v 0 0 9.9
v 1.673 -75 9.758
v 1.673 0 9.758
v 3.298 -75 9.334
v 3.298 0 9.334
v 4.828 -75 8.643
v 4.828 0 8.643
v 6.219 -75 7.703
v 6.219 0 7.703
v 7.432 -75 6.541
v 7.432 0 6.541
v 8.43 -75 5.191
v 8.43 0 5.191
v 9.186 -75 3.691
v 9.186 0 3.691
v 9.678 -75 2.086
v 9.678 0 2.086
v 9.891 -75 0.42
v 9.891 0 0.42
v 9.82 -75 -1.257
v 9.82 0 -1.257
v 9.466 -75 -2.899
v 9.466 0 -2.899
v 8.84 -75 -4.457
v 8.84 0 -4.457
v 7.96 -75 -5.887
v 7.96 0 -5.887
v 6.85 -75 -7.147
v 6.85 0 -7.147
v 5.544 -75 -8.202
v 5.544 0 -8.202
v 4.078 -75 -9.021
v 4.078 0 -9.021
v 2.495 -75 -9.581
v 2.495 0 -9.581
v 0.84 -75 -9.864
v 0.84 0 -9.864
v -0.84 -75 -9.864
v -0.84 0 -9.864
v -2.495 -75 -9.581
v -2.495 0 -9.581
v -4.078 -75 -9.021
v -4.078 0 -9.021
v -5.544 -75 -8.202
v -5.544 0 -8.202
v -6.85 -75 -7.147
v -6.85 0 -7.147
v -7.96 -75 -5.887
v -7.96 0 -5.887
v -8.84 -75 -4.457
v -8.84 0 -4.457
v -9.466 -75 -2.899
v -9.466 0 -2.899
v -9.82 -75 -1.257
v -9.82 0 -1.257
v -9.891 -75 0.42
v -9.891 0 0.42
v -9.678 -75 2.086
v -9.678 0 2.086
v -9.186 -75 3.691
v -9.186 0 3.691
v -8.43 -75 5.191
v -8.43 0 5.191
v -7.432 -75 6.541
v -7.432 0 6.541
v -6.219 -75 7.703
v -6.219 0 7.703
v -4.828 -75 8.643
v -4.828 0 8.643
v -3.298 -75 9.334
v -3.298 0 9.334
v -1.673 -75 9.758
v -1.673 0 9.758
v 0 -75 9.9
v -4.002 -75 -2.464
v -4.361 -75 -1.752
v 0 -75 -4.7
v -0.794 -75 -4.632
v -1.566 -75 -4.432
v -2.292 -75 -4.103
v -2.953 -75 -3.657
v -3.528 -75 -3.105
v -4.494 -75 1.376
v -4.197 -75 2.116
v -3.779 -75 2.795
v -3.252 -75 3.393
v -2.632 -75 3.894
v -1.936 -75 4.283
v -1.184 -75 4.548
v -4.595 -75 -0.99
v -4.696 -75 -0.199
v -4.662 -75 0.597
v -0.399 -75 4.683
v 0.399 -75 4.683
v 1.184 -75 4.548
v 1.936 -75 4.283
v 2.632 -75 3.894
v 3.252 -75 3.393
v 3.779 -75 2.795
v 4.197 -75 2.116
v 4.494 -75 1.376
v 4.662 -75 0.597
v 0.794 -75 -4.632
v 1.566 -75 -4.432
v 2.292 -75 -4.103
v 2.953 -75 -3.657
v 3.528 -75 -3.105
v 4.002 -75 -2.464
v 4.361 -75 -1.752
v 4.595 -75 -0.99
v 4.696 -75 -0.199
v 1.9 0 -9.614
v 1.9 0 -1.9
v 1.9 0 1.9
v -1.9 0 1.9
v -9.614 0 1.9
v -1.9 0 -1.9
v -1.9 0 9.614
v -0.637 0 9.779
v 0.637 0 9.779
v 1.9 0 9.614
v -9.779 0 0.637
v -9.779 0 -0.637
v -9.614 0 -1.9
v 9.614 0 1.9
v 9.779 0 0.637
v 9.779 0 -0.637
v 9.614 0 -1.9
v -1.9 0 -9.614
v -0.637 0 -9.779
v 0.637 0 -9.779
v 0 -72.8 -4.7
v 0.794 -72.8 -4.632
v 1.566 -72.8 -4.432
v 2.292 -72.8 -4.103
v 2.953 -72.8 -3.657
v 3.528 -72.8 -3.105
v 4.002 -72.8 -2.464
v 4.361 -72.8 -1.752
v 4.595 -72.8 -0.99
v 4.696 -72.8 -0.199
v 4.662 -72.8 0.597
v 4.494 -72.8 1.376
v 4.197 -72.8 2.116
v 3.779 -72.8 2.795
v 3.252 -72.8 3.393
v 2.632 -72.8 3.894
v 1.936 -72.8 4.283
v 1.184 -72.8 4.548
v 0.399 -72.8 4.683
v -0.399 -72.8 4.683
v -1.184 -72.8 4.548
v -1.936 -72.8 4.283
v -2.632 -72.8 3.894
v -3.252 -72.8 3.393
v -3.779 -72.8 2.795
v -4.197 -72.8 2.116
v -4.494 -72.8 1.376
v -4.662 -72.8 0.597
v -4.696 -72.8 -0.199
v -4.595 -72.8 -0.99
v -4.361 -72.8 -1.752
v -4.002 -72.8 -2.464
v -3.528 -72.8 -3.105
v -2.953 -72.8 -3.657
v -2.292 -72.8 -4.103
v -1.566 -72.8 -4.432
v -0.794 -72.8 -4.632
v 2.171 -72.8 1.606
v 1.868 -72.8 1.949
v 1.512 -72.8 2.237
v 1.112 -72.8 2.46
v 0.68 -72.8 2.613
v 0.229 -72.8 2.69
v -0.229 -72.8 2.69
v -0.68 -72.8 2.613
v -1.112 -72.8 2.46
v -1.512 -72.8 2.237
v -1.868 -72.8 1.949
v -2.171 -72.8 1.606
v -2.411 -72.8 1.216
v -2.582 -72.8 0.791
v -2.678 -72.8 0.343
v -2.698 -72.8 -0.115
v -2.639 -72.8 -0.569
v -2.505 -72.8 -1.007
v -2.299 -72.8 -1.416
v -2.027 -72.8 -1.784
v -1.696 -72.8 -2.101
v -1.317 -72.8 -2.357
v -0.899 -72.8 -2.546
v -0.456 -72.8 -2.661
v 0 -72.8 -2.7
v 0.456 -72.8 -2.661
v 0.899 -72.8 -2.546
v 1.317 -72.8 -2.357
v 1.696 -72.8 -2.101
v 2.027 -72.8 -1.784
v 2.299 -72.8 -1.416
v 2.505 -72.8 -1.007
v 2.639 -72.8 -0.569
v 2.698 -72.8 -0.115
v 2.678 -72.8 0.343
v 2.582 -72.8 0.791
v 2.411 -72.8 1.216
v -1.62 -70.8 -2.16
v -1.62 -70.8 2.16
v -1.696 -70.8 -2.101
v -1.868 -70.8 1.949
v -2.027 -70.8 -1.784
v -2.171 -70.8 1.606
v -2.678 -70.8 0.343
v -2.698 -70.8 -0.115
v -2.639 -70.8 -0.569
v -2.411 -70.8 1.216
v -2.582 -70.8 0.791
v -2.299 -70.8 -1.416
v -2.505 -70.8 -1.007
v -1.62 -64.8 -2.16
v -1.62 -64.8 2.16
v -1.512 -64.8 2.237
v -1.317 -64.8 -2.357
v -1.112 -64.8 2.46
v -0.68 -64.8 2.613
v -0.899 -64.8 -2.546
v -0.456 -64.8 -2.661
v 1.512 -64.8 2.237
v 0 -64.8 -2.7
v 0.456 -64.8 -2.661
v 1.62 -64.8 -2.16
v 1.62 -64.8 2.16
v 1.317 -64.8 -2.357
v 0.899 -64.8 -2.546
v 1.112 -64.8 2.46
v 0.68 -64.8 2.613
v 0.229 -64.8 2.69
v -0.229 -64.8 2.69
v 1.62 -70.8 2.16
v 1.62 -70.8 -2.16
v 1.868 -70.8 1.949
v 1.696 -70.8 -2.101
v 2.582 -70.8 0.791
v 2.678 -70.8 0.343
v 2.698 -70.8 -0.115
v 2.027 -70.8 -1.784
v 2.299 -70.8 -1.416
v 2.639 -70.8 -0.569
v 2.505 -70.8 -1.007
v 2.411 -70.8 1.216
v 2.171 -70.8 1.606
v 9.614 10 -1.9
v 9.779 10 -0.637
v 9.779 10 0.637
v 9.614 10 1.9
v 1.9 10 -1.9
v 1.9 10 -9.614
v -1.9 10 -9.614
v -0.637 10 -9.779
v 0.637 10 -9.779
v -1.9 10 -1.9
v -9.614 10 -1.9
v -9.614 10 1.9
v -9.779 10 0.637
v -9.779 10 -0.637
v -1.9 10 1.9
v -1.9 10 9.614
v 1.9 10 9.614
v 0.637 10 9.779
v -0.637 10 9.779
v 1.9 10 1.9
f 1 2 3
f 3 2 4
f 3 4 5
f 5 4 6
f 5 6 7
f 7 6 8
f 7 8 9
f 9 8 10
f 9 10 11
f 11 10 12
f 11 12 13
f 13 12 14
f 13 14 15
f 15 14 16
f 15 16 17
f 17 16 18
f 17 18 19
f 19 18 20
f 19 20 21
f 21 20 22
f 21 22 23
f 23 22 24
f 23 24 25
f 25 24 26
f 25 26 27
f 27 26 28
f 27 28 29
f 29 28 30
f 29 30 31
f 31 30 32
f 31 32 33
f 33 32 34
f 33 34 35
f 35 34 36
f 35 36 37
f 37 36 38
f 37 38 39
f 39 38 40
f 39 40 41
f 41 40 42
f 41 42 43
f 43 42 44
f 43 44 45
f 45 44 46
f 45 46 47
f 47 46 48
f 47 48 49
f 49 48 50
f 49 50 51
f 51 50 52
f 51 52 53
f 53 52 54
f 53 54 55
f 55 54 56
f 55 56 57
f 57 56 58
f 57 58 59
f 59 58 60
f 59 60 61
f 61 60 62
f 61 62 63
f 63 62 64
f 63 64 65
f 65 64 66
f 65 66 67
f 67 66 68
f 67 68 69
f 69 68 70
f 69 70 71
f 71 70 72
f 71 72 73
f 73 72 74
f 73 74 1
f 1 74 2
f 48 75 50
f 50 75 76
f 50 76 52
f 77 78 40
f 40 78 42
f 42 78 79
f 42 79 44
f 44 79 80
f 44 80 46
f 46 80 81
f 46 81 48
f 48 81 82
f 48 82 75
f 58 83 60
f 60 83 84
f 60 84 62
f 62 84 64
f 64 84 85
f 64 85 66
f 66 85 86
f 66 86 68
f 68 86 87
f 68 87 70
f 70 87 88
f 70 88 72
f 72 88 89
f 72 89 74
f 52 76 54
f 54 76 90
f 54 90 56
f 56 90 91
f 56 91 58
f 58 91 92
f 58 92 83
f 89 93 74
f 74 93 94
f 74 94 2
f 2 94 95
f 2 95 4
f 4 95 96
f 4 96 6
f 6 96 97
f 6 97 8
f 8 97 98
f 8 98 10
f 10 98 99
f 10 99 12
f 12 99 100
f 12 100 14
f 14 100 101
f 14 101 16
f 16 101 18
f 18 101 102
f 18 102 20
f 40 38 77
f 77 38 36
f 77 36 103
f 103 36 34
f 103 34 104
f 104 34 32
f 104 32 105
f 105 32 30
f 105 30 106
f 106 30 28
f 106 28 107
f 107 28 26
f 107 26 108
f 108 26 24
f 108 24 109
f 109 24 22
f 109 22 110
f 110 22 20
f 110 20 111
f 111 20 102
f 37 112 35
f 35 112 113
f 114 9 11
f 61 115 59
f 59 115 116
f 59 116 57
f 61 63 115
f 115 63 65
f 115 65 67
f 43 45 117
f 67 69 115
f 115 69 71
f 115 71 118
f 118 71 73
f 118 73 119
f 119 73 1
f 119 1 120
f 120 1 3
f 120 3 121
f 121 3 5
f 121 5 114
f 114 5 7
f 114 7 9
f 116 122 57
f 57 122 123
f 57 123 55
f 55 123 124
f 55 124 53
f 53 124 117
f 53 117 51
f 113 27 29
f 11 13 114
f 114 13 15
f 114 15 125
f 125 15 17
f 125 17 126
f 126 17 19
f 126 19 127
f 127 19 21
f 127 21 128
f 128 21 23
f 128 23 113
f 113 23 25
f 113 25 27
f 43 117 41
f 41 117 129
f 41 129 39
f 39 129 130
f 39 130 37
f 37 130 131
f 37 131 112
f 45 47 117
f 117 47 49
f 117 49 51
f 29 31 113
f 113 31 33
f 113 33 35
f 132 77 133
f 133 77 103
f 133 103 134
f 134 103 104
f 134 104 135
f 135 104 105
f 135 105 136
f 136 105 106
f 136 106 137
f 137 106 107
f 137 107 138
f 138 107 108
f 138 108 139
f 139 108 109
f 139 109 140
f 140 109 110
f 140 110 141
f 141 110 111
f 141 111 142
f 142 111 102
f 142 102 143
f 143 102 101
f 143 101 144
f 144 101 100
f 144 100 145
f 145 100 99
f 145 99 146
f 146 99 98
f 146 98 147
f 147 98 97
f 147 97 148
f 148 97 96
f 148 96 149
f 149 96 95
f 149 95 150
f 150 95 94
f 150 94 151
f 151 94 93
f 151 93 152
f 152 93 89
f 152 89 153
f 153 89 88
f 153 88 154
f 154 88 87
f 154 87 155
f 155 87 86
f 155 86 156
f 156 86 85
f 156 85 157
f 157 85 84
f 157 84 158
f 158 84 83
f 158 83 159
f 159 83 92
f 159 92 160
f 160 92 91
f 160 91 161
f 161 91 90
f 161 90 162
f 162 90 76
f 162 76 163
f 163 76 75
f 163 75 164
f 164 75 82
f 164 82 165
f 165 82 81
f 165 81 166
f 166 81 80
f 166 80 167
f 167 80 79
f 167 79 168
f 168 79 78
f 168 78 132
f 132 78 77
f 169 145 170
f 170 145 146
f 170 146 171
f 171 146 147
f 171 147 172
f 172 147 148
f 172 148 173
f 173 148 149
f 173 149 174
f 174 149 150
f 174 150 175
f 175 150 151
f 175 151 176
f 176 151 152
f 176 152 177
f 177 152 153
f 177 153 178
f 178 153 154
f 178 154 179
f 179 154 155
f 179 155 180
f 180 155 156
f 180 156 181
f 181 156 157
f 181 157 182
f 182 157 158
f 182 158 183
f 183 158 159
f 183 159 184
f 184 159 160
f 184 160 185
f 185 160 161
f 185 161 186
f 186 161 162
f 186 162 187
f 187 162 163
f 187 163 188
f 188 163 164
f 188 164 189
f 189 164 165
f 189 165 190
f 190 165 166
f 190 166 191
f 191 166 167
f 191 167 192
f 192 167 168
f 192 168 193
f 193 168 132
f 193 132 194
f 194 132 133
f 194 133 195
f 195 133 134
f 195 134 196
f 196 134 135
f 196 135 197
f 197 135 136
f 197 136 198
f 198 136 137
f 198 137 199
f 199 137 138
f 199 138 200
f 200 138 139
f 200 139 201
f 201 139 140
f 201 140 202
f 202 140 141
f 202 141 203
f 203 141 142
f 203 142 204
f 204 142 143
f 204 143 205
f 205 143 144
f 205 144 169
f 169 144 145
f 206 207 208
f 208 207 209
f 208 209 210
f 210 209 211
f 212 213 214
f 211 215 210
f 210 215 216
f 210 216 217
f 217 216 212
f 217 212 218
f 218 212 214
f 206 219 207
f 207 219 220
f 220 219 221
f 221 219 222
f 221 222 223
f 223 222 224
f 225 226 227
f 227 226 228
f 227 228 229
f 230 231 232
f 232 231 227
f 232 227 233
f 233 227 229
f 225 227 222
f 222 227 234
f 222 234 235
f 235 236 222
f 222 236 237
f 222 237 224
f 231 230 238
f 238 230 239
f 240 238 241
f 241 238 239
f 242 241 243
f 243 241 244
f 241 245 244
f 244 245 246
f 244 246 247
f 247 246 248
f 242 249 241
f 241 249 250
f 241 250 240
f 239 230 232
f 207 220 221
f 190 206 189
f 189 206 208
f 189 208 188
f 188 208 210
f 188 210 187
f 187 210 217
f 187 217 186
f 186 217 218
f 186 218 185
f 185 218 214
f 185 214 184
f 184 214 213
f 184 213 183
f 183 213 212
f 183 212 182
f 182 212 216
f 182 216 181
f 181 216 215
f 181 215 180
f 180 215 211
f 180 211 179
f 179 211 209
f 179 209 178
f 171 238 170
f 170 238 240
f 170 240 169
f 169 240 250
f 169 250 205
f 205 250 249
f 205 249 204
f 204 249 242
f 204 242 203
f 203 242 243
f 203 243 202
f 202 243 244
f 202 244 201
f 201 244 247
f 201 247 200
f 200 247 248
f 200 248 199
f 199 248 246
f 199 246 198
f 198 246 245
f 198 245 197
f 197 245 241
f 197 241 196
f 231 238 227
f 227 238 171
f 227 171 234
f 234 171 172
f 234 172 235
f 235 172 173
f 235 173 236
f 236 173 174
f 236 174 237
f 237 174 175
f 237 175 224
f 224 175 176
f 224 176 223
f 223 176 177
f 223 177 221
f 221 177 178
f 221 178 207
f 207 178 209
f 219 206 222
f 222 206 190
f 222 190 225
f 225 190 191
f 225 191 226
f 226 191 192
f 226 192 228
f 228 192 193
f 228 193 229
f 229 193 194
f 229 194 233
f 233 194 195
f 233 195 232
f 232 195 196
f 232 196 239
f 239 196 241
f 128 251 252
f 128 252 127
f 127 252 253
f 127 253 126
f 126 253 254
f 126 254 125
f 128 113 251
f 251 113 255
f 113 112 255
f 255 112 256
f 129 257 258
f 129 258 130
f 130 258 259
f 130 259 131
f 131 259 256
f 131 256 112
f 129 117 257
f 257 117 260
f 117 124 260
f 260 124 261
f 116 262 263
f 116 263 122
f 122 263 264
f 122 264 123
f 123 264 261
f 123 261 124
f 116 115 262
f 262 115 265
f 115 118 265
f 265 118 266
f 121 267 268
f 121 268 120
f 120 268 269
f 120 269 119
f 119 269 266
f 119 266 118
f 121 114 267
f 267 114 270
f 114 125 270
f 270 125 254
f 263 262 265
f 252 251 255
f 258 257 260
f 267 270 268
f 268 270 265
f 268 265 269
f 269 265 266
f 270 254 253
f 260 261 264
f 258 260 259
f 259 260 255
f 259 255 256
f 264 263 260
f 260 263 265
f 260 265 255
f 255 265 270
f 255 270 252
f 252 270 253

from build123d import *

# Parameters (mm, degrees)
SKETCH3_R           = 9.9
BOSS_EXTRUDE1_DEPTH = 75
CUT_EXTRUDE8_DEPTH  = 10.2
CUT_EXTRUDE9_DEPTH  = 4.2
SKETCH7_7_R         = 4.7
CUT_EXTRUDE10_DEPTH = 2.2
BOSS_EXTRUDE3_START = 10
BOSS_EXTRUDE3_DEPTH = 10
CUT_EXTRUDE11_DEPTH = 10


with BuildPart() as part:
    # Sketch3 → Boss-Extrude1 (new body)
    with BuildSketch(Plane(origin=(0, 0, 0), x_dir=(1, 0, 0), z_dir=(0, 1, 0))):
        Circle(SKETCH3_R)
    extrude(amount=-BOSS_EXTRUDE1_DEPTH)

    # Sketch7 → Cut-Extrude8 (cut)
    with BuildSketch(Plane(origin=(0, -75, 0), x_dir=(-1, 0, 0), z_dir=(0, -1, 0))):
        with BuildLine():
            Line((-1.62, 2.16), (-1.62, -2.16))
            ThreePointArc((-1.62, -2.16), (0, -2.7), (1.62, -2.16))
            Line((1.62, -2.16), (1.62, 2.16))
            ThreePointArc((1.62, 2.16), (0, 2.7), (-1.62, 2.16))
        make_face()
    extrude(amount=-CUT_EXTRUDE8_DEPTH, mode=Mode.SUBTRACT)

    # Sketch7<6> → Cut-Extrude9 (cut)
    with BuildSketch(Plane(origin=(0, -75, 0), x_dir=(-1, 0, 0), z_dir=(0, -1, 0))):
        with BuildLine():
            ThreePointArc((-1.62, 2.16), (-2.7, 0), (-1.62, -2.16))
            Line((-1.62, -2.16), (-1.62, 2.16))
        make_face()
        with BuildLine():
            Line((1.62, 2.16), (1.62, -2.16))
            ThreePointArc((1.62, -2.16), (2.7, 0), (1.62, 2.16))
        make_face()
    extrude(amount=-CUT_EXTRUDE9_DEPTH, mode=Mode.SUBTRACT)

    # Sketch7<7> → Cut-Extrude10 (cut)
    with BuildSketch(Plane(origin=(0, -75, 0), x_dir=(-1, 0, 0), z_dir=(0, -1, 0))):
        Circle(SKETCH7_7_R)
        with BuildLine():
            ThreePointArc((-2.16, -1.62), (-2.7, 0), (-2.16, 1.62))
            ThreePointArc((-2.16, 1.62), (-1.909188309, 1.909188309), (-1.62, 2.16))
            ThreePointArc((-1.62, 2.16), (0, 2.7), (1.62, 2.16))
            ThreePointArc((1.62, 2.16), (1.909188309, 1.909188309), (2.16, 1.62))
            ThreePointArc((2.16, 1.62), (2.561444905, 0.853814968), (2.7, 0))
            ThreePointArc((2.7, 0), (2.561444905, -0.853814968), (2.16, -1.62))
            ThreePointArc((2.16, -1.62), (1.909188309, -1.909188309), (1.62, -2.16))
            ThreePointArc((1.62, -2.16), (0, -2.7), (-1.62, -2.16))
            ThreePointArc((-1.62, -2.16), (-1.909188309, -1.909188309), (-2.16, -1.62))
        make_face(mode=Mode.SUBTRACT)
    extrude(amount=-CUT_EXTRUDE10_DEPTH, mode=Mode.SUBTRACT)

    # Sketch5 → Boss-Extrude3 (add)
    with BuildSketch(Plane(origin=(0, 0, 0), x_dir=(1, 0, 0), z_dir=(0, 1, 0)).offset(BOSS_EXTRUDE3_START)):
        with BuildLine():
            Line((-2, 9.695875412), (-2, 2))
            Line((-2, 2), (-9.695875412, 2))
            ThreePointArc((-9.695875412, 2), (-9.9, 0), (-9.695875412, -2))
            Line((-9.695875412, -2), (-2, -2))
            Line((-2, -2), (-2, -9.695875412))
            ThreePointArc((-2, -9.695875412), (0, -9.9), (2, -9.695875412))
            Line((2, -9.695875412), (2, -2))
            Line((2, -2), (9.695875412, -2))
            ThreePointArc((9.695875412, -2), (9.848836646, -1.005194863), (9.9, 0))
            ThreePointArc((9.9, 0), (9.848836646, 1.005194863), (9.695875412, 2))
            Line((9.695875412, 2), (2, 2))
            Line((2, 2), (2, 9.695875412))
            ThreePointArc((2, 9.695875412), (0, 9.9), (-2, 9.695875412))
        make_face()
    extrude(amount=-BOSS_EXTRUDE3_DEPTH)

    # Sketch11 → Cut-Extrude11 (cut)
    with BuildSketch(Plane(origin=(0, 10, 0), x_dir=(1, 0, 0), z_dir=(0, 1, 0))):
        with BuildLine():
            Line((-2, 9.695875412), (-2, 2))
            Line((-2, 2), (-9.695875412, 2))
            ThreePointArc((-9.695875412, 2), (-9.9, 0), (-9.695875412, -2))
            Line((-9.695875412, -2), (-2, -2))
            Line((-2, -2), (-2, -9.695875412))
            ThreePointArc((-2, -9.695875412), (0, -9.9), (2, -9.695875412))
            Line((2, -9.695875412), (2, -2))
            Line((2, -2), (9.695875412, -2))
            ThreePointArc((9.695875412, -2), (9.9, 0), (9.695875412, 2))
            Line((9.695875412, 2), (2, 2))
            Line((2, 2), (2, 9.695875412))
            ThreePointArc((2, 9.695875412), (0, 9.9), (-2, 9.695875412))
        make_face()
        with BuildLine():
            ThreePointArc((-1.9, 9.614052215), (0, 9.8), (1.9, 9.614052215))
            Line((1.9, 9.614052215), (1.9, 1.9))
            Line((1.9, 1.9), (9.614052215, 1.9))
            ThreePointArc((9.614052215, 1.9), (9.8, 0), (9.614052215, -1.9))
            Line((9.614052215, -1.9), (1.9, -1.9))
            Line((1.9, -1.9), (1.9, -9.614052215))
            ThreePointArc((1.9, -9.614052215), (0, -9.8), (-1.9, -9.614052215))
            Line((-1.9, -9.614052215), (-1.9, -1.9))
            Line((-1.9, -1.9), (-9.614052215, -1.9))
            ThreePointArc((-9.614052215, -1.9), (-9.8, 0), (-9.614052215, 1.9))
            Line((-9.614052215, 1.9), (-1.9, 1.9))
            Line((-1.9, 1.9), (-1.9, 9.614052215))
        make_face(mode=Mode.SUBTRACT)
    extrude(amount=-CUT_EXTRUDE11_DEPTH, mode=Mode.SUBTRACT)


solid = part.part
